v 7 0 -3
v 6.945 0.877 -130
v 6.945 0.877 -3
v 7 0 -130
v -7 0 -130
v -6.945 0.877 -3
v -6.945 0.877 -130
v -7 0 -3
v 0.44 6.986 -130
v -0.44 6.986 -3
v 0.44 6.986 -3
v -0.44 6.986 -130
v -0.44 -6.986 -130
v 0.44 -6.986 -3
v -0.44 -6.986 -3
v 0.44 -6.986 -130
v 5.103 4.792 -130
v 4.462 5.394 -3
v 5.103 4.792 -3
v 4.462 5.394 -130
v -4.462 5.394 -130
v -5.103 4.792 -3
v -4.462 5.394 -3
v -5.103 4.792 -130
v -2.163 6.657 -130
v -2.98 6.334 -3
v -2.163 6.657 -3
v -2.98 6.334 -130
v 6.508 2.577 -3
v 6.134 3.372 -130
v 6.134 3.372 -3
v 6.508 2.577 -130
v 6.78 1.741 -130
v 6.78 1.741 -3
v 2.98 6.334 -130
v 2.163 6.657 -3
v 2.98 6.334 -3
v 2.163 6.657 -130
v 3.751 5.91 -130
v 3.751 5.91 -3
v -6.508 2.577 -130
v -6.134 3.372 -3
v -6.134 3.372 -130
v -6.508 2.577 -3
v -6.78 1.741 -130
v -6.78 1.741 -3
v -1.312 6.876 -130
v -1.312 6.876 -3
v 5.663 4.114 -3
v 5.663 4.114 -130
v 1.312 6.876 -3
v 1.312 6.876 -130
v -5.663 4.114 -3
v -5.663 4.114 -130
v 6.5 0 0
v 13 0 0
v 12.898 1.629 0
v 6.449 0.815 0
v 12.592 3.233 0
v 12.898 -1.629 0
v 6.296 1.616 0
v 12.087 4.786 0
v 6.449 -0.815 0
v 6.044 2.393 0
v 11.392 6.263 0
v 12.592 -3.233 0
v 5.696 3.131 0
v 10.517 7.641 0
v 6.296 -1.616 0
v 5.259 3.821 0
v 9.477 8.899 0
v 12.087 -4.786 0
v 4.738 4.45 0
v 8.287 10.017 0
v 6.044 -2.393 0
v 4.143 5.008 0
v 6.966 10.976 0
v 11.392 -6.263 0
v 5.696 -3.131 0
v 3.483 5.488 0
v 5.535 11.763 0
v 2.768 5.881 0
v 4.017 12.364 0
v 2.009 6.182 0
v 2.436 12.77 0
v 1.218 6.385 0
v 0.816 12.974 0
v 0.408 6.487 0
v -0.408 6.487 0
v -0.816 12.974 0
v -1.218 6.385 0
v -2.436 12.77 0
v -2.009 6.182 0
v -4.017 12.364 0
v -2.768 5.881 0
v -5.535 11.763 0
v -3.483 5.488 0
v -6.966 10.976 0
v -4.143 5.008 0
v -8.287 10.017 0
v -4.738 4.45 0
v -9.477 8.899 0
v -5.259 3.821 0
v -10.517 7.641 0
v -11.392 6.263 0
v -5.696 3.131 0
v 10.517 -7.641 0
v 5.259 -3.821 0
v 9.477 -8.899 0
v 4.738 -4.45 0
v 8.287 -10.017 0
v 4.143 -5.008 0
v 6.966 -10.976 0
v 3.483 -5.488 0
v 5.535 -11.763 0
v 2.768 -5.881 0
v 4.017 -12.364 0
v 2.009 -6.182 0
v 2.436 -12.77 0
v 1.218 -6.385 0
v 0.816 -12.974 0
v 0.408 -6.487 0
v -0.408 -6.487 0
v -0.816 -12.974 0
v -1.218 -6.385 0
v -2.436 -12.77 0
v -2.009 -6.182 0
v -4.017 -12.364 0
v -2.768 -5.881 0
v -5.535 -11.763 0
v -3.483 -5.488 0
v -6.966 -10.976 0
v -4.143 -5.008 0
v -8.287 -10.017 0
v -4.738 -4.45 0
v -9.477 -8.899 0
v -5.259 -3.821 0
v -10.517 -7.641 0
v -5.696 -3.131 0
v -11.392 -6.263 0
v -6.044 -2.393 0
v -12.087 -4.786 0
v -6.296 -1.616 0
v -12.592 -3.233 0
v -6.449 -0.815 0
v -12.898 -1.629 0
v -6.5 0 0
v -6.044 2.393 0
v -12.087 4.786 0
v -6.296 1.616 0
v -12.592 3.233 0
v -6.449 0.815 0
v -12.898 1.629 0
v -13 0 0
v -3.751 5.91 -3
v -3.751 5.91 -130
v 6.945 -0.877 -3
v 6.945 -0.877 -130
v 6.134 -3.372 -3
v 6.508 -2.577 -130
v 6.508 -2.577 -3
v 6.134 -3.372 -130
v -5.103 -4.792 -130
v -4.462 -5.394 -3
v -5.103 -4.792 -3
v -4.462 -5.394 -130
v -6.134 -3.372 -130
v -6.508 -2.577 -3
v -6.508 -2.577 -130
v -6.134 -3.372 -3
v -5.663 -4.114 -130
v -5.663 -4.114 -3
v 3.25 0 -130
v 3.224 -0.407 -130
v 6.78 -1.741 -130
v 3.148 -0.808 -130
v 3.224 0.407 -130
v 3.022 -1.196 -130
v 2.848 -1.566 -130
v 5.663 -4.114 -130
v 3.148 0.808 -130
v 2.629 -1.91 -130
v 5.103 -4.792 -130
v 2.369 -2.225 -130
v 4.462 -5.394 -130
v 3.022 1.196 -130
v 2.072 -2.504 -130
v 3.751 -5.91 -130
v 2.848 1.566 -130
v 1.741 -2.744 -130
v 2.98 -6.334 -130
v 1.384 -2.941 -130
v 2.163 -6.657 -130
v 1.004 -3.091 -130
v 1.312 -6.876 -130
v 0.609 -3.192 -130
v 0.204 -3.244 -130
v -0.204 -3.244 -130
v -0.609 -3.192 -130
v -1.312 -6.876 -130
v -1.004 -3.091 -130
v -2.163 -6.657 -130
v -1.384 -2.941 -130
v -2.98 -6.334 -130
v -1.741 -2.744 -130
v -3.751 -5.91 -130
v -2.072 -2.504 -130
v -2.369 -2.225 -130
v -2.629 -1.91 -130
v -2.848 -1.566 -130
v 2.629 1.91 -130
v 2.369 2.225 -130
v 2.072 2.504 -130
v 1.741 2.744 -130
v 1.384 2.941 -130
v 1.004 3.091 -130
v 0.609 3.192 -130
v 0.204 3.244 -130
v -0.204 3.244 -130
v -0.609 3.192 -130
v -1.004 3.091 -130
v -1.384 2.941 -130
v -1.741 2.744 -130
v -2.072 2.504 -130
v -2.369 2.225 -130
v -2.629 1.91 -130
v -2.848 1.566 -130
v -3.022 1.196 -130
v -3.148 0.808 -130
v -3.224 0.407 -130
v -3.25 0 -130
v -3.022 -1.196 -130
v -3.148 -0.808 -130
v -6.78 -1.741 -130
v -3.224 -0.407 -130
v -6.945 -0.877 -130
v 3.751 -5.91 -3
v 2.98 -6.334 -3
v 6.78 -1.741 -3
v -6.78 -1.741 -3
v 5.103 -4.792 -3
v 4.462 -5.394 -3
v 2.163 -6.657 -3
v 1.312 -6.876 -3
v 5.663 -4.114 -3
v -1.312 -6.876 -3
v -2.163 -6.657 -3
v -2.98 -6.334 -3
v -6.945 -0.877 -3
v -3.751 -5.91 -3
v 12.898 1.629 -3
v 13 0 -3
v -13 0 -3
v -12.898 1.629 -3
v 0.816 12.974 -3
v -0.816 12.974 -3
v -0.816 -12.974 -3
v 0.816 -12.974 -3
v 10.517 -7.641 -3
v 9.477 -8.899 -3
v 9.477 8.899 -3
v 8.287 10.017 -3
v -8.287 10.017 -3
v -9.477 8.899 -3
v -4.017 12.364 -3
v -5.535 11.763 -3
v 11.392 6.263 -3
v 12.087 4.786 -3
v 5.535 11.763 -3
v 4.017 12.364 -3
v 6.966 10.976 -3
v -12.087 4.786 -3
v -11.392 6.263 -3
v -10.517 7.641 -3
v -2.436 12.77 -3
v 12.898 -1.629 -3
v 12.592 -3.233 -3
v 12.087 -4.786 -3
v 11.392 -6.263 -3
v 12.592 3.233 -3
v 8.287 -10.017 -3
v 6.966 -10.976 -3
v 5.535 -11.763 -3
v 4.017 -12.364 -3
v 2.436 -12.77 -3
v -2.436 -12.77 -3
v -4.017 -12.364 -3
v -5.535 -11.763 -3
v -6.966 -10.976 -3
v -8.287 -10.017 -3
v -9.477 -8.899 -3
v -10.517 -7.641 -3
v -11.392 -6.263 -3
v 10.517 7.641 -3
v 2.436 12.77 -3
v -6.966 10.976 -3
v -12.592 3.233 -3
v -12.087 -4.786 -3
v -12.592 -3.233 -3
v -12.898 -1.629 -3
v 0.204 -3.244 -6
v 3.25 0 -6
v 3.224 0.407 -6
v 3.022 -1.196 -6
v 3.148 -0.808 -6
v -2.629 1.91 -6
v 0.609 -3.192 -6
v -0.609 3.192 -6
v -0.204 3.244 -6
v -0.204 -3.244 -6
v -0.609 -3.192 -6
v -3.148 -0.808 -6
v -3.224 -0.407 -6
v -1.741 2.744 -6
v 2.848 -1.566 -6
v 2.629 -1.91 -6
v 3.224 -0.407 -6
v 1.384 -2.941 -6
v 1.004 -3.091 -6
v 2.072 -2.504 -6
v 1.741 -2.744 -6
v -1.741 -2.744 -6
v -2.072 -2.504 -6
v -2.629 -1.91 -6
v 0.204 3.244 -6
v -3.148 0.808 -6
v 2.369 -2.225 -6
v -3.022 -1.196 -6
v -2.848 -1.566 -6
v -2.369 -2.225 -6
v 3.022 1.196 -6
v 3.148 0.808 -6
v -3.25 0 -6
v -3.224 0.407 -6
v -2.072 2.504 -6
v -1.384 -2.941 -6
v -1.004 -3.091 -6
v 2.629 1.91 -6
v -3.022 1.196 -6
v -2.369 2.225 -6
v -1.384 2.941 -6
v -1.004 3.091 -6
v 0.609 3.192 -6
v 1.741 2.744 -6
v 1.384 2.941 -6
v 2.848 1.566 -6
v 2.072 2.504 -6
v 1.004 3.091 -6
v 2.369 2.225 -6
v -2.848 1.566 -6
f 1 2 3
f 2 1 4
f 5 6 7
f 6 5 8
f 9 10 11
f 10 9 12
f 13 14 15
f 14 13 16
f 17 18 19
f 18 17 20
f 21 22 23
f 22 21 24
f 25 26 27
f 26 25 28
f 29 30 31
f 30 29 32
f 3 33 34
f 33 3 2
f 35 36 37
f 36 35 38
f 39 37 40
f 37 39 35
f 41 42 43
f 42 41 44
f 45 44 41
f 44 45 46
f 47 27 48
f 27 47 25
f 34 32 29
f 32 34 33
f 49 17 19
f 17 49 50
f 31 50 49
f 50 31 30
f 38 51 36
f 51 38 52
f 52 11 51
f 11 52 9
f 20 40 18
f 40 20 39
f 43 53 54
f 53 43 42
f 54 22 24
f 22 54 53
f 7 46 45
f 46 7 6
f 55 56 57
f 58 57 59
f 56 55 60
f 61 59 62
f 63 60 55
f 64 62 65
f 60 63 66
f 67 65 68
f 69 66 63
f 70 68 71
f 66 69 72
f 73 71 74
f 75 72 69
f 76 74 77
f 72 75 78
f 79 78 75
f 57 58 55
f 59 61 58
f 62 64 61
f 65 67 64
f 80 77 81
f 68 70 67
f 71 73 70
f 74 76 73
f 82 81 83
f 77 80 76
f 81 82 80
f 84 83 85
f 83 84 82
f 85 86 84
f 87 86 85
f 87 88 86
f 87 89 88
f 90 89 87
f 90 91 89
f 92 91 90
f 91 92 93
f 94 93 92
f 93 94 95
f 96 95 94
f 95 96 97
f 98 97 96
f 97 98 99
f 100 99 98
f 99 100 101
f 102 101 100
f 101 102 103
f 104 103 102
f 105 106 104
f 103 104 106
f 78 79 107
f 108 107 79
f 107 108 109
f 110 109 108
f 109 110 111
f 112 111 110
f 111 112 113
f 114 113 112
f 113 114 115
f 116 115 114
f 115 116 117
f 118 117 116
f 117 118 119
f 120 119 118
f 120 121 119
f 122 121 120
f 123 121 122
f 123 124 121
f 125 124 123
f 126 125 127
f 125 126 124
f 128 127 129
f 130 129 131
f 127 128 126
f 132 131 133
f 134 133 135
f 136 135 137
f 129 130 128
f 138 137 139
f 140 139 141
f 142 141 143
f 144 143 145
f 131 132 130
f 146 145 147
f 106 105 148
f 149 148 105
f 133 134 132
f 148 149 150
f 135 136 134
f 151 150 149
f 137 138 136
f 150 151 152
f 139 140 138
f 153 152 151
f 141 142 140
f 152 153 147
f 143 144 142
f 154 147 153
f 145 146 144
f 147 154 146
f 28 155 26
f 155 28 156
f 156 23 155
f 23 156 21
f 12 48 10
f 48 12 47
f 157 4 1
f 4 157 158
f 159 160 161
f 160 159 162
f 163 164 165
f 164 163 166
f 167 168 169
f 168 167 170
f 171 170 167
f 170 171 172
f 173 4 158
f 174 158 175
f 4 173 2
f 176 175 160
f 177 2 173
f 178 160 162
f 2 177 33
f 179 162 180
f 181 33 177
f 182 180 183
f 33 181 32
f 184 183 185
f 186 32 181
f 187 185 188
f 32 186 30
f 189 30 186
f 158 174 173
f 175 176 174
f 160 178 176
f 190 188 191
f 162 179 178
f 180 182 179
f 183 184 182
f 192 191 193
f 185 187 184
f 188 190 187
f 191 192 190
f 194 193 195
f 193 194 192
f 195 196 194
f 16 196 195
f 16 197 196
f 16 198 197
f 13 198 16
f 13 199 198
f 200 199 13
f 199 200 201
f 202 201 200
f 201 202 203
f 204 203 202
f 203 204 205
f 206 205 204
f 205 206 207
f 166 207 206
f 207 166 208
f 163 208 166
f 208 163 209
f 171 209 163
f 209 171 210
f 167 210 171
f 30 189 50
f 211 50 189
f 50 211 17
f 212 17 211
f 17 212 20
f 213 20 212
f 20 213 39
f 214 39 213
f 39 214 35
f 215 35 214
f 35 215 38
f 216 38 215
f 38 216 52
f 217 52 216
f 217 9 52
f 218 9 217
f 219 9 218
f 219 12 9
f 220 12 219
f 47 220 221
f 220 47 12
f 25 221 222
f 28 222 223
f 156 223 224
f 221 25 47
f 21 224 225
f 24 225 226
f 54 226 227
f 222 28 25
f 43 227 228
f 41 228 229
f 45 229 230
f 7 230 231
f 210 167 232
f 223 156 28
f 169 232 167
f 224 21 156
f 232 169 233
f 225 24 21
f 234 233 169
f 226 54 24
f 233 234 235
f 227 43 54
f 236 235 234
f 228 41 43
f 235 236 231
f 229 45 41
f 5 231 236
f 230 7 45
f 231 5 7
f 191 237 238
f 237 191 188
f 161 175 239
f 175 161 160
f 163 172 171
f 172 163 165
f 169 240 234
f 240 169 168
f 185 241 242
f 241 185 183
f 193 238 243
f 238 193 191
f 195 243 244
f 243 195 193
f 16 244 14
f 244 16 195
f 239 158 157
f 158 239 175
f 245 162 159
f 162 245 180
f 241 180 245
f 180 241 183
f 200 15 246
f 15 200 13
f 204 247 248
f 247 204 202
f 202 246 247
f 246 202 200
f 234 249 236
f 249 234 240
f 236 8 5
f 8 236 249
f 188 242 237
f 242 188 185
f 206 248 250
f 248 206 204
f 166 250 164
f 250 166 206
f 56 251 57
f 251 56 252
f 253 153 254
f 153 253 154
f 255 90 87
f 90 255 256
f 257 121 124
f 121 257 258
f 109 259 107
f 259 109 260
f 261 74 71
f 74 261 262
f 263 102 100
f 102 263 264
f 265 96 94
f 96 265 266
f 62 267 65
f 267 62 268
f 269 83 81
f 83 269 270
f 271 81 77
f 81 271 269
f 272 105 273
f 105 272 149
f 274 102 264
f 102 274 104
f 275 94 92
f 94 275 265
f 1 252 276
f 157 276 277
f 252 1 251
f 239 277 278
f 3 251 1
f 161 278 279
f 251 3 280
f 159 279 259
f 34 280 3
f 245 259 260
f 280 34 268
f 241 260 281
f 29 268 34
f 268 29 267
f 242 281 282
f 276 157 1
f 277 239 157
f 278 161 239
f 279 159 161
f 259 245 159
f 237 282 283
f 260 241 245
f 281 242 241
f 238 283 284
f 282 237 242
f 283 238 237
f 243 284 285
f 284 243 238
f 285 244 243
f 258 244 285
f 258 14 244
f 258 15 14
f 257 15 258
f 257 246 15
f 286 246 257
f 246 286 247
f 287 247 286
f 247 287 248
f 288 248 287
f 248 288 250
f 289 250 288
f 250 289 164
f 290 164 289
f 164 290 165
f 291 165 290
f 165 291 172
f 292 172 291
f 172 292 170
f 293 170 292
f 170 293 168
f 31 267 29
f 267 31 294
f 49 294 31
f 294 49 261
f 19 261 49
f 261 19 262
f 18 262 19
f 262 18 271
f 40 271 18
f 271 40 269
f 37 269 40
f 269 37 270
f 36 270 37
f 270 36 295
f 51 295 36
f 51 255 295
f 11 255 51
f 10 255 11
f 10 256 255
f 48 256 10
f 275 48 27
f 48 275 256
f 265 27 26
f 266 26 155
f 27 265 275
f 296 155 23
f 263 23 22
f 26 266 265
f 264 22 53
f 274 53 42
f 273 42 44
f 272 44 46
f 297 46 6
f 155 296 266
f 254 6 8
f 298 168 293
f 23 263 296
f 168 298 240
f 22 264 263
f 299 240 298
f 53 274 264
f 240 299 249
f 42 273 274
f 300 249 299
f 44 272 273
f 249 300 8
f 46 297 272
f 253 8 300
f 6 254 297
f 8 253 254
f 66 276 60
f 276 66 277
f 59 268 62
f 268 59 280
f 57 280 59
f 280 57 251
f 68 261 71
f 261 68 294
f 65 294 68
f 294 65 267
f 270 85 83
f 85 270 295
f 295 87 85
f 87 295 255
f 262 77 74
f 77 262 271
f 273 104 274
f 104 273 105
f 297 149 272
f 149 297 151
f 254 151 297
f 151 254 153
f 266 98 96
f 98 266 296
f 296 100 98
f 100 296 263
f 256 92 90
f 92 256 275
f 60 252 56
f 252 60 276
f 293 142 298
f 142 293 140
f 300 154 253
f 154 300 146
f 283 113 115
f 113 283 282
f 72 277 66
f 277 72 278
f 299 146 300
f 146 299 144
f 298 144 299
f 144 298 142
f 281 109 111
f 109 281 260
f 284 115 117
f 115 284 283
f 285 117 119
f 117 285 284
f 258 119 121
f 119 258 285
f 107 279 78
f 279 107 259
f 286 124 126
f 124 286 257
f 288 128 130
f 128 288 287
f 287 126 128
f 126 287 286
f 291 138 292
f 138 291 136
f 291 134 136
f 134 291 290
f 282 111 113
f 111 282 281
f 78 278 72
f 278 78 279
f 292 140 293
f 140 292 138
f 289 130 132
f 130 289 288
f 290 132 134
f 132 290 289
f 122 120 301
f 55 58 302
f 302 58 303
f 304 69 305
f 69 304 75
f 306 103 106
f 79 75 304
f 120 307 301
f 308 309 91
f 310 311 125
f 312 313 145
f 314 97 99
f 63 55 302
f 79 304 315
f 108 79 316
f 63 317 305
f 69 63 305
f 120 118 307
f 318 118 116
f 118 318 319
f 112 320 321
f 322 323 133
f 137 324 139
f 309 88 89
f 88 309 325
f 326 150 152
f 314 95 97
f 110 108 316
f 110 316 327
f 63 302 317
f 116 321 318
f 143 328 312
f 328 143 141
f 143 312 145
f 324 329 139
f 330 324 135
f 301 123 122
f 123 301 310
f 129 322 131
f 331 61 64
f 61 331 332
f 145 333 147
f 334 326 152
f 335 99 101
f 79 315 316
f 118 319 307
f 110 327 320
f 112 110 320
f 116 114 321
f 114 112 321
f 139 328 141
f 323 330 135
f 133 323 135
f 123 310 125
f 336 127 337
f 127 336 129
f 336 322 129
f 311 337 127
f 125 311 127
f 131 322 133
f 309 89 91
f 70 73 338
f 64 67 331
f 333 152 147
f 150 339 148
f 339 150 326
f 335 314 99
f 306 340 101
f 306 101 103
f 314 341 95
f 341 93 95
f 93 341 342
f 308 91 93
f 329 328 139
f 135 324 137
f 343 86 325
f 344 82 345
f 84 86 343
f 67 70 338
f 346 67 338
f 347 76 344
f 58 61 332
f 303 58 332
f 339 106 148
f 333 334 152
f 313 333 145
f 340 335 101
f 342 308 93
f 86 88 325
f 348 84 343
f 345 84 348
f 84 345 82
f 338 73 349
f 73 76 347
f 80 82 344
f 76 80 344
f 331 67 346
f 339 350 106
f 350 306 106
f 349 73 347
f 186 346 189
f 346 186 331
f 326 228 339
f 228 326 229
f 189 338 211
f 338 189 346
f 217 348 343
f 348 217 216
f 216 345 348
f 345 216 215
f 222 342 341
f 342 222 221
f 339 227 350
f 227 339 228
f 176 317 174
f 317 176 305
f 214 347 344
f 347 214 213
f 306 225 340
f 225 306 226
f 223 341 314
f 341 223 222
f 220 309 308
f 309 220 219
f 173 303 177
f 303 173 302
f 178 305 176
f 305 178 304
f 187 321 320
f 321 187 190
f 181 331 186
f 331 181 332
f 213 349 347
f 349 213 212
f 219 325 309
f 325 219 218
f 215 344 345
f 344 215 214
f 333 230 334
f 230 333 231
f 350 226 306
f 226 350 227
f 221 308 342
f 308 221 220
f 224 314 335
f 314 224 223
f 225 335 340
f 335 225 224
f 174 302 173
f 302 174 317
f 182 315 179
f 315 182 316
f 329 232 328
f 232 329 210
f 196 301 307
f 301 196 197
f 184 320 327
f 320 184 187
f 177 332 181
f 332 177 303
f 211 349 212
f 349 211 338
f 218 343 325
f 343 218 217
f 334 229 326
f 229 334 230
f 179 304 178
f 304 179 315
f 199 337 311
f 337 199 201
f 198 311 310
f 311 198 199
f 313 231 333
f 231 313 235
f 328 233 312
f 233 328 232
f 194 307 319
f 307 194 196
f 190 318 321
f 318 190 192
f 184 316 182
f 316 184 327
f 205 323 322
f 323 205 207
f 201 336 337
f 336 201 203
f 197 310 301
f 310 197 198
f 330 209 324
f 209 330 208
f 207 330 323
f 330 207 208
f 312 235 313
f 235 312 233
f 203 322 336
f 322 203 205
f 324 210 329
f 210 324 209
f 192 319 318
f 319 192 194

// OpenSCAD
$fn = 50;


difference() {
	union() {
		translate(v = [0, 0, -130.0000000000]) {
			cylinder(h = 130, r = 7.0000000000);
		}
		translate(v = [0, 0, -3.0000000000]) {
			cylinder(h = 3, r = 13.0000000000);
		}
	}
	union() {
		translate(v = [0, 0, 0]) {
			rotate(a = [0, 0, 0]) {
				difference() {
					union() {
						#translate(v = [0, 0, -130.0000000000]) {
							cylinder(h = 130, r = 2.2500000000);
						}
						#translate(v = [0, 0, -6]) {
							cylinder(h = 6, r1 = 3.2500000000, r2 = 6.5000000000);
						}
						#translate(v = [0, 0, -130.0000000000]) {
							cylinder(h = 130, r = 3.2500000000);
						}
						#translate(v = [0, 0, -130.0000000000]) {
							cylinder(h = 130, r = 2.2500000000);
						}
					}
					union();
				}
			}
		}
	}
}
